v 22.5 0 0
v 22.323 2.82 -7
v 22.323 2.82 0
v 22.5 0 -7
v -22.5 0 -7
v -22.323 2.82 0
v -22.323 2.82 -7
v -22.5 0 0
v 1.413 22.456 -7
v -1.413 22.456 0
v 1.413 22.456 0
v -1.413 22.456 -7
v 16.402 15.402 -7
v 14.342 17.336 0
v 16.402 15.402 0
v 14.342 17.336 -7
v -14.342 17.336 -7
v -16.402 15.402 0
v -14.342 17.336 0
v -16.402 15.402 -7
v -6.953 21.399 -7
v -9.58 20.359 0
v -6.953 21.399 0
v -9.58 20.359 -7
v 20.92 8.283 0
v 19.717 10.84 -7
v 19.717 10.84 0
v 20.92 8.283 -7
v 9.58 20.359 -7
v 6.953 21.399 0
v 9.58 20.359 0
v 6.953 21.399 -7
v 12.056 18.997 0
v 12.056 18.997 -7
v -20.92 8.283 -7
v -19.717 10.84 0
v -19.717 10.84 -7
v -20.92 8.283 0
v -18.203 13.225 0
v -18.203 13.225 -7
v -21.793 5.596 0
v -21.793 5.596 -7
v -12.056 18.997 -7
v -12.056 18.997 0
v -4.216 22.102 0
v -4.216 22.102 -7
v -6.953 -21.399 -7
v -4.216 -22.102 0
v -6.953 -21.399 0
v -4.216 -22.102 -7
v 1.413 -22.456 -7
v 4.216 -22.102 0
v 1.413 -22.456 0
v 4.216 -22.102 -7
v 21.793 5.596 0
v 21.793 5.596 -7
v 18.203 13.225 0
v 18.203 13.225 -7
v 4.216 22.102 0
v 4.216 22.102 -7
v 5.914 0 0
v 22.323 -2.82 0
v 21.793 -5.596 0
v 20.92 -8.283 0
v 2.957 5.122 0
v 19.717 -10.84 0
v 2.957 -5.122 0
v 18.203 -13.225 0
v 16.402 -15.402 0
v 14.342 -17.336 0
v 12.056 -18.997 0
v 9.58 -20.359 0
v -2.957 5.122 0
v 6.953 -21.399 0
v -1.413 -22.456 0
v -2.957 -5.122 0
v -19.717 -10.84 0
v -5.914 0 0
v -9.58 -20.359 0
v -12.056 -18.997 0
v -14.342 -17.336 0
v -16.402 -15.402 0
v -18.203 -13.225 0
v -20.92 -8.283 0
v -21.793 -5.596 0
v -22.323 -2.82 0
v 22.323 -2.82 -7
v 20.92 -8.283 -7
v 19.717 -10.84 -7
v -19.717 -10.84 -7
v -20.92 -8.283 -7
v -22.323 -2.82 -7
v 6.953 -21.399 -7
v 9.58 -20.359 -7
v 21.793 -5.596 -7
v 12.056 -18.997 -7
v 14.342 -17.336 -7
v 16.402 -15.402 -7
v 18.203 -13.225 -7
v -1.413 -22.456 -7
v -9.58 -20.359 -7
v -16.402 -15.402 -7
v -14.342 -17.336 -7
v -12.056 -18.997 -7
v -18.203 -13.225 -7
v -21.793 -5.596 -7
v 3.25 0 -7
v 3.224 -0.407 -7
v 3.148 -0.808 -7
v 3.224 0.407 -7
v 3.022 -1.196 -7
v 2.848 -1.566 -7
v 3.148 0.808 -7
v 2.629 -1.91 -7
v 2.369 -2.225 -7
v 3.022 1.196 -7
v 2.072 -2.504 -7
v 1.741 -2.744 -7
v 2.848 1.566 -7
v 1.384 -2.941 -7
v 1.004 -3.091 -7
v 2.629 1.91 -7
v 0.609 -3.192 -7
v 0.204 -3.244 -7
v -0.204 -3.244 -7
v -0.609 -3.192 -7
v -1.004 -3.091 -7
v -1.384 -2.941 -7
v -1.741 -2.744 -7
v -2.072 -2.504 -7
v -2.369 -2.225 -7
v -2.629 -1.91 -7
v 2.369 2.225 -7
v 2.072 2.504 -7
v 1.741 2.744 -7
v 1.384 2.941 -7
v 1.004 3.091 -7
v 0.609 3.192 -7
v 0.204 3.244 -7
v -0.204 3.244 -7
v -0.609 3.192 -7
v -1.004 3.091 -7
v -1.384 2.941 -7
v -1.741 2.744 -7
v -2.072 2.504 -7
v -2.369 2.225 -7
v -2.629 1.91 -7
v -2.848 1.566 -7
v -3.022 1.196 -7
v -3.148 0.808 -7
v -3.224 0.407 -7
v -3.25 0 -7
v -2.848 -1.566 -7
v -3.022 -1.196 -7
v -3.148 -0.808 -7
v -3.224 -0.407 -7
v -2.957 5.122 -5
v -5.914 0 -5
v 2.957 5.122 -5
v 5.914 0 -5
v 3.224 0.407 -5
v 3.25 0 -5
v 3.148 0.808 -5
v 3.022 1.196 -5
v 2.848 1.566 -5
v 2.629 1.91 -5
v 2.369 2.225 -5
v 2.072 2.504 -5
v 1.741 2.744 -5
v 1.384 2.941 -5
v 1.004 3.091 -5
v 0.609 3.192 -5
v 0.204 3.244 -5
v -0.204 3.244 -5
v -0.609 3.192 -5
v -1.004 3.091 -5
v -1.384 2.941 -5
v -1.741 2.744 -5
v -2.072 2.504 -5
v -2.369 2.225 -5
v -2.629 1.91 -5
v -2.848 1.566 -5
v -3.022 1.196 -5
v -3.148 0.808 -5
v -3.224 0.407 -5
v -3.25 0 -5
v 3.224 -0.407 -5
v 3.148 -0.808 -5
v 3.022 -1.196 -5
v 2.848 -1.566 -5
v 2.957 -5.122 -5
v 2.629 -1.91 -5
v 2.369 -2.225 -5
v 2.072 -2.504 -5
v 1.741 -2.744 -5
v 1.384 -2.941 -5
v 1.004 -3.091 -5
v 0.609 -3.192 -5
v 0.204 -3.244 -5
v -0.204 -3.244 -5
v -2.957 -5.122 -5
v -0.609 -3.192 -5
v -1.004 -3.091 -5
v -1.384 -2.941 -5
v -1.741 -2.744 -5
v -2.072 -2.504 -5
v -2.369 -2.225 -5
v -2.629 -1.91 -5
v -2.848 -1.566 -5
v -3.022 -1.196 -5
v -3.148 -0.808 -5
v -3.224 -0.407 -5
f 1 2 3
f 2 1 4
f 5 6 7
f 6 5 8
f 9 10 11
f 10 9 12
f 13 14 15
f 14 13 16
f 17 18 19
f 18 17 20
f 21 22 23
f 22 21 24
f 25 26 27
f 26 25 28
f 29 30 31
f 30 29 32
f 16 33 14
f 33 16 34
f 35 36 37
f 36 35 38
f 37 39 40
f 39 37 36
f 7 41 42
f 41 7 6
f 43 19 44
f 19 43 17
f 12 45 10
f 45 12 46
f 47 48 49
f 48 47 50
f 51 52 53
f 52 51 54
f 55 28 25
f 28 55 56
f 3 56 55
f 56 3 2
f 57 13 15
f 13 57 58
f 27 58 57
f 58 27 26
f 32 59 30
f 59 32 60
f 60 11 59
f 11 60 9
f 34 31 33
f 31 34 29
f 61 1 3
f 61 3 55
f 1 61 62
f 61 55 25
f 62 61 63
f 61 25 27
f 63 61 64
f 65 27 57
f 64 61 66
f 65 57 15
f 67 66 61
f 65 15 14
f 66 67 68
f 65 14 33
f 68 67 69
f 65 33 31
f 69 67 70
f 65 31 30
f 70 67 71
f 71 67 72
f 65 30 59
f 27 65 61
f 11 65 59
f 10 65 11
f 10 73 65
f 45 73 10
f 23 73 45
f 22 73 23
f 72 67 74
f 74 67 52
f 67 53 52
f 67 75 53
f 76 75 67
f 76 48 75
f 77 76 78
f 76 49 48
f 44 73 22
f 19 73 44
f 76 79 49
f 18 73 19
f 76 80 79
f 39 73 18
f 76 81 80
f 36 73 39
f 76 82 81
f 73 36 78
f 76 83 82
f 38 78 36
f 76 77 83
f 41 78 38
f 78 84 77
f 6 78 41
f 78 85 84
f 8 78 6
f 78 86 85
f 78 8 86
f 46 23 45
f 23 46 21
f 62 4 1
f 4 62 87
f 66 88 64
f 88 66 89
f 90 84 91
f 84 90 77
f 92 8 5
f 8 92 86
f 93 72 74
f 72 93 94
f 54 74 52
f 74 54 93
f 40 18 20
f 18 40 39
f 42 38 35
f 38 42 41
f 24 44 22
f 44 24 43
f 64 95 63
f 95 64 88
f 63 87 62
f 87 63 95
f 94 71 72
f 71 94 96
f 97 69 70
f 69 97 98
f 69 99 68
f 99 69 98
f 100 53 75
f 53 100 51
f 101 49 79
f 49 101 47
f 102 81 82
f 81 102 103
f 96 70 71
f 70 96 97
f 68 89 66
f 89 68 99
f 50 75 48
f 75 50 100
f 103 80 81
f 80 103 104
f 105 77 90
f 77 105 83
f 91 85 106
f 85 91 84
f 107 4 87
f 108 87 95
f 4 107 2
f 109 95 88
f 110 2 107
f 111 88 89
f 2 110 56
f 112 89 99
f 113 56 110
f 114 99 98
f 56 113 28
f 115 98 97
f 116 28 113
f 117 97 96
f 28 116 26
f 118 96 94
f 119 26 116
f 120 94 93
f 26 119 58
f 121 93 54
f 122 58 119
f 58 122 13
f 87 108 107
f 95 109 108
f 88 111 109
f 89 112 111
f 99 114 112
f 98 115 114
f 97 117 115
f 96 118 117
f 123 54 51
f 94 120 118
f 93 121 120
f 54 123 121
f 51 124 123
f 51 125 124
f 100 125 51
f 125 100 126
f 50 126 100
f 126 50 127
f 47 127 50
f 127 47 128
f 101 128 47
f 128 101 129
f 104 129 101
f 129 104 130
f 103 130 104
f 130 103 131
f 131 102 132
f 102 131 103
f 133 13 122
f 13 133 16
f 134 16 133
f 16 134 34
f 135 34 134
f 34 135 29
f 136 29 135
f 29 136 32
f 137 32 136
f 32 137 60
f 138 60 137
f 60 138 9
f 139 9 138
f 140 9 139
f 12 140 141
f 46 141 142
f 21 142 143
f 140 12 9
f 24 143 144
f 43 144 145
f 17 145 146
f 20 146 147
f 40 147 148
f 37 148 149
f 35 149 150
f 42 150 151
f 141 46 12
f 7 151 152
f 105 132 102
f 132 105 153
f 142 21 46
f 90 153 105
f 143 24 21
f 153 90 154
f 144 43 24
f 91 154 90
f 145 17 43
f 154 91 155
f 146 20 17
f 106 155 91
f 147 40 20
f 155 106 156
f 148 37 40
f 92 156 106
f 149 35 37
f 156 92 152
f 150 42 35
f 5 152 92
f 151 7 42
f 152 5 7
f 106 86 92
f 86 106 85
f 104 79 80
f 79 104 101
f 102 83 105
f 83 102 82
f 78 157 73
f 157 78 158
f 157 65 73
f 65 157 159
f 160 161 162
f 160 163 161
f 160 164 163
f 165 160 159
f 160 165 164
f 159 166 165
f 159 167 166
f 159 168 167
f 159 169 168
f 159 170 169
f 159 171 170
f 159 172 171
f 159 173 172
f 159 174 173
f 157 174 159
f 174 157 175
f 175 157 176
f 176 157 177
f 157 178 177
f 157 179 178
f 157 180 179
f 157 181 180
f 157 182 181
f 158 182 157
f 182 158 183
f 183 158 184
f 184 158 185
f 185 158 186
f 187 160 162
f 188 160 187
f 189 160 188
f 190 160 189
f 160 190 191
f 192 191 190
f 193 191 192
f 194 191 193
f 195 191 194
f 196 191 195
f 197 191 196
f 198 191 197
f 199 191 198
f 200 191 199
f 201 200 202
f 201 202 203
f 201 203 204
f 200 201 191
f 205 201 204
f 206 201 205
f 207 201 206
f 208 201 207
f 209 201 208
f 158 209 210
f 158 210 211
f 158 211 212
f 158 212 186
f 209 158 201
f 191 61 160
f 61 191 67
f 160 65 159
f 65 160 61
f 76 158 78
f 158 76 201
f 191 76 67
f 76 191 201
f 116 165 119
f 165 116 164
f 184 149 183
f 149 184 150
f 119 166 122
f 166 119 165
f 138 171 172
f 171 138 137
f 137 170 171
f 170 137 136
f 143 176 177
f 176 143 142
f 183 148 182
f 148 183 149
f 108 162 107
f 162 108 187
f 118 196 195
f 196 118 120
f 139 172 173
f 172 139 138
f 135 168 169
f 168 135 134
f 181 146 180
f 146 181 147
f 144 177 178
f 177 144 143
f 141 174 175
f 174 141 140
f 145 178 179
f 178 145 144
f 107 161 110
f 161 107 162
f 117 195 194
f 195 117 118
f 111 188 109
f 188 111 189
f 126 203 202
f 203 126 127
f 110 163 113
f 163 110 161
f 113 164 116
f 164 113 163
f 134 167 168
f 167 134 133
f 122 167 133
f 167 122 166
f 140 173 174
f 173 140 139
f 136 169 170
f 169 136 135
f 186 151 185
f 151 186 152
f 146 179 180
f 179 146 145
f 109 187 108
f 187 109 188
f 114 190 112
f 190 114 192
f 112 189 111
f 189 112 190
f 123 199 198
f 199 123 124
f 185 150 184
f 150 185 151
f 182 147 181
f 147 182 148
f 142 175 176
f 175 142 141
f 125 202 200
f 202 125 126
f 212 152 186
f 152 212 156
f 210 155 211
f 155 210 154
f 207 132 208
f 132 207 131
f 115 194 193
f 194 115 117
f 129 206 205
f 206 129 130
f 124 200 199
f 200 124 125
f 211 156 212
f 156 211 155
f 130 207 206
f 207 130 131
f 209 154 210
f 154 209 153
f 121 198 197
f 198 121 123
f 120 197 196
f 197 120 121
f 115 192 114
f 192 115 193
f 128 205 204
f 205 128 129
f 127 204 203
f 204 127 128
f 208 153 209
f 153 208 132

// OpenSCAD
$fn = 50;


difference() {
	union() {
		translate(v = [0, 0, -7.0000000000]) {
			cylinder(h = 7.0000000000, r = 22.5000000000);
		}
		translate(v = [0, 0, -5.5000000000]) {
			cylinder(h = 5.5000000000, r = 2.8750000000);
		}
	}
	union() {
		translate(v = [0, 0, 0]) {
			rotate(a = [0, 0, 0]) {
				difference() {
					union() {
						translate(v = [0, 0, -5]) {
							#linear_extrude(height = 5) {
								polygon(points = [[5.9142500000, 0.0000000000], [2.9571250000, 5.1218907443], [-2.9571250000, 5.1218907443], [-5.9142500000, 0.0000000000], [-2.9571250000, -5.1218907443], [2.9571250000, -5.1218907443]]);
							}
						}
					}
					union();
				}
			}
		}
		#translate(v = [0, 0, -100.0000000000]) {
			cylinder(h = 200, r = 3.2500000000);
		}
	}
}
